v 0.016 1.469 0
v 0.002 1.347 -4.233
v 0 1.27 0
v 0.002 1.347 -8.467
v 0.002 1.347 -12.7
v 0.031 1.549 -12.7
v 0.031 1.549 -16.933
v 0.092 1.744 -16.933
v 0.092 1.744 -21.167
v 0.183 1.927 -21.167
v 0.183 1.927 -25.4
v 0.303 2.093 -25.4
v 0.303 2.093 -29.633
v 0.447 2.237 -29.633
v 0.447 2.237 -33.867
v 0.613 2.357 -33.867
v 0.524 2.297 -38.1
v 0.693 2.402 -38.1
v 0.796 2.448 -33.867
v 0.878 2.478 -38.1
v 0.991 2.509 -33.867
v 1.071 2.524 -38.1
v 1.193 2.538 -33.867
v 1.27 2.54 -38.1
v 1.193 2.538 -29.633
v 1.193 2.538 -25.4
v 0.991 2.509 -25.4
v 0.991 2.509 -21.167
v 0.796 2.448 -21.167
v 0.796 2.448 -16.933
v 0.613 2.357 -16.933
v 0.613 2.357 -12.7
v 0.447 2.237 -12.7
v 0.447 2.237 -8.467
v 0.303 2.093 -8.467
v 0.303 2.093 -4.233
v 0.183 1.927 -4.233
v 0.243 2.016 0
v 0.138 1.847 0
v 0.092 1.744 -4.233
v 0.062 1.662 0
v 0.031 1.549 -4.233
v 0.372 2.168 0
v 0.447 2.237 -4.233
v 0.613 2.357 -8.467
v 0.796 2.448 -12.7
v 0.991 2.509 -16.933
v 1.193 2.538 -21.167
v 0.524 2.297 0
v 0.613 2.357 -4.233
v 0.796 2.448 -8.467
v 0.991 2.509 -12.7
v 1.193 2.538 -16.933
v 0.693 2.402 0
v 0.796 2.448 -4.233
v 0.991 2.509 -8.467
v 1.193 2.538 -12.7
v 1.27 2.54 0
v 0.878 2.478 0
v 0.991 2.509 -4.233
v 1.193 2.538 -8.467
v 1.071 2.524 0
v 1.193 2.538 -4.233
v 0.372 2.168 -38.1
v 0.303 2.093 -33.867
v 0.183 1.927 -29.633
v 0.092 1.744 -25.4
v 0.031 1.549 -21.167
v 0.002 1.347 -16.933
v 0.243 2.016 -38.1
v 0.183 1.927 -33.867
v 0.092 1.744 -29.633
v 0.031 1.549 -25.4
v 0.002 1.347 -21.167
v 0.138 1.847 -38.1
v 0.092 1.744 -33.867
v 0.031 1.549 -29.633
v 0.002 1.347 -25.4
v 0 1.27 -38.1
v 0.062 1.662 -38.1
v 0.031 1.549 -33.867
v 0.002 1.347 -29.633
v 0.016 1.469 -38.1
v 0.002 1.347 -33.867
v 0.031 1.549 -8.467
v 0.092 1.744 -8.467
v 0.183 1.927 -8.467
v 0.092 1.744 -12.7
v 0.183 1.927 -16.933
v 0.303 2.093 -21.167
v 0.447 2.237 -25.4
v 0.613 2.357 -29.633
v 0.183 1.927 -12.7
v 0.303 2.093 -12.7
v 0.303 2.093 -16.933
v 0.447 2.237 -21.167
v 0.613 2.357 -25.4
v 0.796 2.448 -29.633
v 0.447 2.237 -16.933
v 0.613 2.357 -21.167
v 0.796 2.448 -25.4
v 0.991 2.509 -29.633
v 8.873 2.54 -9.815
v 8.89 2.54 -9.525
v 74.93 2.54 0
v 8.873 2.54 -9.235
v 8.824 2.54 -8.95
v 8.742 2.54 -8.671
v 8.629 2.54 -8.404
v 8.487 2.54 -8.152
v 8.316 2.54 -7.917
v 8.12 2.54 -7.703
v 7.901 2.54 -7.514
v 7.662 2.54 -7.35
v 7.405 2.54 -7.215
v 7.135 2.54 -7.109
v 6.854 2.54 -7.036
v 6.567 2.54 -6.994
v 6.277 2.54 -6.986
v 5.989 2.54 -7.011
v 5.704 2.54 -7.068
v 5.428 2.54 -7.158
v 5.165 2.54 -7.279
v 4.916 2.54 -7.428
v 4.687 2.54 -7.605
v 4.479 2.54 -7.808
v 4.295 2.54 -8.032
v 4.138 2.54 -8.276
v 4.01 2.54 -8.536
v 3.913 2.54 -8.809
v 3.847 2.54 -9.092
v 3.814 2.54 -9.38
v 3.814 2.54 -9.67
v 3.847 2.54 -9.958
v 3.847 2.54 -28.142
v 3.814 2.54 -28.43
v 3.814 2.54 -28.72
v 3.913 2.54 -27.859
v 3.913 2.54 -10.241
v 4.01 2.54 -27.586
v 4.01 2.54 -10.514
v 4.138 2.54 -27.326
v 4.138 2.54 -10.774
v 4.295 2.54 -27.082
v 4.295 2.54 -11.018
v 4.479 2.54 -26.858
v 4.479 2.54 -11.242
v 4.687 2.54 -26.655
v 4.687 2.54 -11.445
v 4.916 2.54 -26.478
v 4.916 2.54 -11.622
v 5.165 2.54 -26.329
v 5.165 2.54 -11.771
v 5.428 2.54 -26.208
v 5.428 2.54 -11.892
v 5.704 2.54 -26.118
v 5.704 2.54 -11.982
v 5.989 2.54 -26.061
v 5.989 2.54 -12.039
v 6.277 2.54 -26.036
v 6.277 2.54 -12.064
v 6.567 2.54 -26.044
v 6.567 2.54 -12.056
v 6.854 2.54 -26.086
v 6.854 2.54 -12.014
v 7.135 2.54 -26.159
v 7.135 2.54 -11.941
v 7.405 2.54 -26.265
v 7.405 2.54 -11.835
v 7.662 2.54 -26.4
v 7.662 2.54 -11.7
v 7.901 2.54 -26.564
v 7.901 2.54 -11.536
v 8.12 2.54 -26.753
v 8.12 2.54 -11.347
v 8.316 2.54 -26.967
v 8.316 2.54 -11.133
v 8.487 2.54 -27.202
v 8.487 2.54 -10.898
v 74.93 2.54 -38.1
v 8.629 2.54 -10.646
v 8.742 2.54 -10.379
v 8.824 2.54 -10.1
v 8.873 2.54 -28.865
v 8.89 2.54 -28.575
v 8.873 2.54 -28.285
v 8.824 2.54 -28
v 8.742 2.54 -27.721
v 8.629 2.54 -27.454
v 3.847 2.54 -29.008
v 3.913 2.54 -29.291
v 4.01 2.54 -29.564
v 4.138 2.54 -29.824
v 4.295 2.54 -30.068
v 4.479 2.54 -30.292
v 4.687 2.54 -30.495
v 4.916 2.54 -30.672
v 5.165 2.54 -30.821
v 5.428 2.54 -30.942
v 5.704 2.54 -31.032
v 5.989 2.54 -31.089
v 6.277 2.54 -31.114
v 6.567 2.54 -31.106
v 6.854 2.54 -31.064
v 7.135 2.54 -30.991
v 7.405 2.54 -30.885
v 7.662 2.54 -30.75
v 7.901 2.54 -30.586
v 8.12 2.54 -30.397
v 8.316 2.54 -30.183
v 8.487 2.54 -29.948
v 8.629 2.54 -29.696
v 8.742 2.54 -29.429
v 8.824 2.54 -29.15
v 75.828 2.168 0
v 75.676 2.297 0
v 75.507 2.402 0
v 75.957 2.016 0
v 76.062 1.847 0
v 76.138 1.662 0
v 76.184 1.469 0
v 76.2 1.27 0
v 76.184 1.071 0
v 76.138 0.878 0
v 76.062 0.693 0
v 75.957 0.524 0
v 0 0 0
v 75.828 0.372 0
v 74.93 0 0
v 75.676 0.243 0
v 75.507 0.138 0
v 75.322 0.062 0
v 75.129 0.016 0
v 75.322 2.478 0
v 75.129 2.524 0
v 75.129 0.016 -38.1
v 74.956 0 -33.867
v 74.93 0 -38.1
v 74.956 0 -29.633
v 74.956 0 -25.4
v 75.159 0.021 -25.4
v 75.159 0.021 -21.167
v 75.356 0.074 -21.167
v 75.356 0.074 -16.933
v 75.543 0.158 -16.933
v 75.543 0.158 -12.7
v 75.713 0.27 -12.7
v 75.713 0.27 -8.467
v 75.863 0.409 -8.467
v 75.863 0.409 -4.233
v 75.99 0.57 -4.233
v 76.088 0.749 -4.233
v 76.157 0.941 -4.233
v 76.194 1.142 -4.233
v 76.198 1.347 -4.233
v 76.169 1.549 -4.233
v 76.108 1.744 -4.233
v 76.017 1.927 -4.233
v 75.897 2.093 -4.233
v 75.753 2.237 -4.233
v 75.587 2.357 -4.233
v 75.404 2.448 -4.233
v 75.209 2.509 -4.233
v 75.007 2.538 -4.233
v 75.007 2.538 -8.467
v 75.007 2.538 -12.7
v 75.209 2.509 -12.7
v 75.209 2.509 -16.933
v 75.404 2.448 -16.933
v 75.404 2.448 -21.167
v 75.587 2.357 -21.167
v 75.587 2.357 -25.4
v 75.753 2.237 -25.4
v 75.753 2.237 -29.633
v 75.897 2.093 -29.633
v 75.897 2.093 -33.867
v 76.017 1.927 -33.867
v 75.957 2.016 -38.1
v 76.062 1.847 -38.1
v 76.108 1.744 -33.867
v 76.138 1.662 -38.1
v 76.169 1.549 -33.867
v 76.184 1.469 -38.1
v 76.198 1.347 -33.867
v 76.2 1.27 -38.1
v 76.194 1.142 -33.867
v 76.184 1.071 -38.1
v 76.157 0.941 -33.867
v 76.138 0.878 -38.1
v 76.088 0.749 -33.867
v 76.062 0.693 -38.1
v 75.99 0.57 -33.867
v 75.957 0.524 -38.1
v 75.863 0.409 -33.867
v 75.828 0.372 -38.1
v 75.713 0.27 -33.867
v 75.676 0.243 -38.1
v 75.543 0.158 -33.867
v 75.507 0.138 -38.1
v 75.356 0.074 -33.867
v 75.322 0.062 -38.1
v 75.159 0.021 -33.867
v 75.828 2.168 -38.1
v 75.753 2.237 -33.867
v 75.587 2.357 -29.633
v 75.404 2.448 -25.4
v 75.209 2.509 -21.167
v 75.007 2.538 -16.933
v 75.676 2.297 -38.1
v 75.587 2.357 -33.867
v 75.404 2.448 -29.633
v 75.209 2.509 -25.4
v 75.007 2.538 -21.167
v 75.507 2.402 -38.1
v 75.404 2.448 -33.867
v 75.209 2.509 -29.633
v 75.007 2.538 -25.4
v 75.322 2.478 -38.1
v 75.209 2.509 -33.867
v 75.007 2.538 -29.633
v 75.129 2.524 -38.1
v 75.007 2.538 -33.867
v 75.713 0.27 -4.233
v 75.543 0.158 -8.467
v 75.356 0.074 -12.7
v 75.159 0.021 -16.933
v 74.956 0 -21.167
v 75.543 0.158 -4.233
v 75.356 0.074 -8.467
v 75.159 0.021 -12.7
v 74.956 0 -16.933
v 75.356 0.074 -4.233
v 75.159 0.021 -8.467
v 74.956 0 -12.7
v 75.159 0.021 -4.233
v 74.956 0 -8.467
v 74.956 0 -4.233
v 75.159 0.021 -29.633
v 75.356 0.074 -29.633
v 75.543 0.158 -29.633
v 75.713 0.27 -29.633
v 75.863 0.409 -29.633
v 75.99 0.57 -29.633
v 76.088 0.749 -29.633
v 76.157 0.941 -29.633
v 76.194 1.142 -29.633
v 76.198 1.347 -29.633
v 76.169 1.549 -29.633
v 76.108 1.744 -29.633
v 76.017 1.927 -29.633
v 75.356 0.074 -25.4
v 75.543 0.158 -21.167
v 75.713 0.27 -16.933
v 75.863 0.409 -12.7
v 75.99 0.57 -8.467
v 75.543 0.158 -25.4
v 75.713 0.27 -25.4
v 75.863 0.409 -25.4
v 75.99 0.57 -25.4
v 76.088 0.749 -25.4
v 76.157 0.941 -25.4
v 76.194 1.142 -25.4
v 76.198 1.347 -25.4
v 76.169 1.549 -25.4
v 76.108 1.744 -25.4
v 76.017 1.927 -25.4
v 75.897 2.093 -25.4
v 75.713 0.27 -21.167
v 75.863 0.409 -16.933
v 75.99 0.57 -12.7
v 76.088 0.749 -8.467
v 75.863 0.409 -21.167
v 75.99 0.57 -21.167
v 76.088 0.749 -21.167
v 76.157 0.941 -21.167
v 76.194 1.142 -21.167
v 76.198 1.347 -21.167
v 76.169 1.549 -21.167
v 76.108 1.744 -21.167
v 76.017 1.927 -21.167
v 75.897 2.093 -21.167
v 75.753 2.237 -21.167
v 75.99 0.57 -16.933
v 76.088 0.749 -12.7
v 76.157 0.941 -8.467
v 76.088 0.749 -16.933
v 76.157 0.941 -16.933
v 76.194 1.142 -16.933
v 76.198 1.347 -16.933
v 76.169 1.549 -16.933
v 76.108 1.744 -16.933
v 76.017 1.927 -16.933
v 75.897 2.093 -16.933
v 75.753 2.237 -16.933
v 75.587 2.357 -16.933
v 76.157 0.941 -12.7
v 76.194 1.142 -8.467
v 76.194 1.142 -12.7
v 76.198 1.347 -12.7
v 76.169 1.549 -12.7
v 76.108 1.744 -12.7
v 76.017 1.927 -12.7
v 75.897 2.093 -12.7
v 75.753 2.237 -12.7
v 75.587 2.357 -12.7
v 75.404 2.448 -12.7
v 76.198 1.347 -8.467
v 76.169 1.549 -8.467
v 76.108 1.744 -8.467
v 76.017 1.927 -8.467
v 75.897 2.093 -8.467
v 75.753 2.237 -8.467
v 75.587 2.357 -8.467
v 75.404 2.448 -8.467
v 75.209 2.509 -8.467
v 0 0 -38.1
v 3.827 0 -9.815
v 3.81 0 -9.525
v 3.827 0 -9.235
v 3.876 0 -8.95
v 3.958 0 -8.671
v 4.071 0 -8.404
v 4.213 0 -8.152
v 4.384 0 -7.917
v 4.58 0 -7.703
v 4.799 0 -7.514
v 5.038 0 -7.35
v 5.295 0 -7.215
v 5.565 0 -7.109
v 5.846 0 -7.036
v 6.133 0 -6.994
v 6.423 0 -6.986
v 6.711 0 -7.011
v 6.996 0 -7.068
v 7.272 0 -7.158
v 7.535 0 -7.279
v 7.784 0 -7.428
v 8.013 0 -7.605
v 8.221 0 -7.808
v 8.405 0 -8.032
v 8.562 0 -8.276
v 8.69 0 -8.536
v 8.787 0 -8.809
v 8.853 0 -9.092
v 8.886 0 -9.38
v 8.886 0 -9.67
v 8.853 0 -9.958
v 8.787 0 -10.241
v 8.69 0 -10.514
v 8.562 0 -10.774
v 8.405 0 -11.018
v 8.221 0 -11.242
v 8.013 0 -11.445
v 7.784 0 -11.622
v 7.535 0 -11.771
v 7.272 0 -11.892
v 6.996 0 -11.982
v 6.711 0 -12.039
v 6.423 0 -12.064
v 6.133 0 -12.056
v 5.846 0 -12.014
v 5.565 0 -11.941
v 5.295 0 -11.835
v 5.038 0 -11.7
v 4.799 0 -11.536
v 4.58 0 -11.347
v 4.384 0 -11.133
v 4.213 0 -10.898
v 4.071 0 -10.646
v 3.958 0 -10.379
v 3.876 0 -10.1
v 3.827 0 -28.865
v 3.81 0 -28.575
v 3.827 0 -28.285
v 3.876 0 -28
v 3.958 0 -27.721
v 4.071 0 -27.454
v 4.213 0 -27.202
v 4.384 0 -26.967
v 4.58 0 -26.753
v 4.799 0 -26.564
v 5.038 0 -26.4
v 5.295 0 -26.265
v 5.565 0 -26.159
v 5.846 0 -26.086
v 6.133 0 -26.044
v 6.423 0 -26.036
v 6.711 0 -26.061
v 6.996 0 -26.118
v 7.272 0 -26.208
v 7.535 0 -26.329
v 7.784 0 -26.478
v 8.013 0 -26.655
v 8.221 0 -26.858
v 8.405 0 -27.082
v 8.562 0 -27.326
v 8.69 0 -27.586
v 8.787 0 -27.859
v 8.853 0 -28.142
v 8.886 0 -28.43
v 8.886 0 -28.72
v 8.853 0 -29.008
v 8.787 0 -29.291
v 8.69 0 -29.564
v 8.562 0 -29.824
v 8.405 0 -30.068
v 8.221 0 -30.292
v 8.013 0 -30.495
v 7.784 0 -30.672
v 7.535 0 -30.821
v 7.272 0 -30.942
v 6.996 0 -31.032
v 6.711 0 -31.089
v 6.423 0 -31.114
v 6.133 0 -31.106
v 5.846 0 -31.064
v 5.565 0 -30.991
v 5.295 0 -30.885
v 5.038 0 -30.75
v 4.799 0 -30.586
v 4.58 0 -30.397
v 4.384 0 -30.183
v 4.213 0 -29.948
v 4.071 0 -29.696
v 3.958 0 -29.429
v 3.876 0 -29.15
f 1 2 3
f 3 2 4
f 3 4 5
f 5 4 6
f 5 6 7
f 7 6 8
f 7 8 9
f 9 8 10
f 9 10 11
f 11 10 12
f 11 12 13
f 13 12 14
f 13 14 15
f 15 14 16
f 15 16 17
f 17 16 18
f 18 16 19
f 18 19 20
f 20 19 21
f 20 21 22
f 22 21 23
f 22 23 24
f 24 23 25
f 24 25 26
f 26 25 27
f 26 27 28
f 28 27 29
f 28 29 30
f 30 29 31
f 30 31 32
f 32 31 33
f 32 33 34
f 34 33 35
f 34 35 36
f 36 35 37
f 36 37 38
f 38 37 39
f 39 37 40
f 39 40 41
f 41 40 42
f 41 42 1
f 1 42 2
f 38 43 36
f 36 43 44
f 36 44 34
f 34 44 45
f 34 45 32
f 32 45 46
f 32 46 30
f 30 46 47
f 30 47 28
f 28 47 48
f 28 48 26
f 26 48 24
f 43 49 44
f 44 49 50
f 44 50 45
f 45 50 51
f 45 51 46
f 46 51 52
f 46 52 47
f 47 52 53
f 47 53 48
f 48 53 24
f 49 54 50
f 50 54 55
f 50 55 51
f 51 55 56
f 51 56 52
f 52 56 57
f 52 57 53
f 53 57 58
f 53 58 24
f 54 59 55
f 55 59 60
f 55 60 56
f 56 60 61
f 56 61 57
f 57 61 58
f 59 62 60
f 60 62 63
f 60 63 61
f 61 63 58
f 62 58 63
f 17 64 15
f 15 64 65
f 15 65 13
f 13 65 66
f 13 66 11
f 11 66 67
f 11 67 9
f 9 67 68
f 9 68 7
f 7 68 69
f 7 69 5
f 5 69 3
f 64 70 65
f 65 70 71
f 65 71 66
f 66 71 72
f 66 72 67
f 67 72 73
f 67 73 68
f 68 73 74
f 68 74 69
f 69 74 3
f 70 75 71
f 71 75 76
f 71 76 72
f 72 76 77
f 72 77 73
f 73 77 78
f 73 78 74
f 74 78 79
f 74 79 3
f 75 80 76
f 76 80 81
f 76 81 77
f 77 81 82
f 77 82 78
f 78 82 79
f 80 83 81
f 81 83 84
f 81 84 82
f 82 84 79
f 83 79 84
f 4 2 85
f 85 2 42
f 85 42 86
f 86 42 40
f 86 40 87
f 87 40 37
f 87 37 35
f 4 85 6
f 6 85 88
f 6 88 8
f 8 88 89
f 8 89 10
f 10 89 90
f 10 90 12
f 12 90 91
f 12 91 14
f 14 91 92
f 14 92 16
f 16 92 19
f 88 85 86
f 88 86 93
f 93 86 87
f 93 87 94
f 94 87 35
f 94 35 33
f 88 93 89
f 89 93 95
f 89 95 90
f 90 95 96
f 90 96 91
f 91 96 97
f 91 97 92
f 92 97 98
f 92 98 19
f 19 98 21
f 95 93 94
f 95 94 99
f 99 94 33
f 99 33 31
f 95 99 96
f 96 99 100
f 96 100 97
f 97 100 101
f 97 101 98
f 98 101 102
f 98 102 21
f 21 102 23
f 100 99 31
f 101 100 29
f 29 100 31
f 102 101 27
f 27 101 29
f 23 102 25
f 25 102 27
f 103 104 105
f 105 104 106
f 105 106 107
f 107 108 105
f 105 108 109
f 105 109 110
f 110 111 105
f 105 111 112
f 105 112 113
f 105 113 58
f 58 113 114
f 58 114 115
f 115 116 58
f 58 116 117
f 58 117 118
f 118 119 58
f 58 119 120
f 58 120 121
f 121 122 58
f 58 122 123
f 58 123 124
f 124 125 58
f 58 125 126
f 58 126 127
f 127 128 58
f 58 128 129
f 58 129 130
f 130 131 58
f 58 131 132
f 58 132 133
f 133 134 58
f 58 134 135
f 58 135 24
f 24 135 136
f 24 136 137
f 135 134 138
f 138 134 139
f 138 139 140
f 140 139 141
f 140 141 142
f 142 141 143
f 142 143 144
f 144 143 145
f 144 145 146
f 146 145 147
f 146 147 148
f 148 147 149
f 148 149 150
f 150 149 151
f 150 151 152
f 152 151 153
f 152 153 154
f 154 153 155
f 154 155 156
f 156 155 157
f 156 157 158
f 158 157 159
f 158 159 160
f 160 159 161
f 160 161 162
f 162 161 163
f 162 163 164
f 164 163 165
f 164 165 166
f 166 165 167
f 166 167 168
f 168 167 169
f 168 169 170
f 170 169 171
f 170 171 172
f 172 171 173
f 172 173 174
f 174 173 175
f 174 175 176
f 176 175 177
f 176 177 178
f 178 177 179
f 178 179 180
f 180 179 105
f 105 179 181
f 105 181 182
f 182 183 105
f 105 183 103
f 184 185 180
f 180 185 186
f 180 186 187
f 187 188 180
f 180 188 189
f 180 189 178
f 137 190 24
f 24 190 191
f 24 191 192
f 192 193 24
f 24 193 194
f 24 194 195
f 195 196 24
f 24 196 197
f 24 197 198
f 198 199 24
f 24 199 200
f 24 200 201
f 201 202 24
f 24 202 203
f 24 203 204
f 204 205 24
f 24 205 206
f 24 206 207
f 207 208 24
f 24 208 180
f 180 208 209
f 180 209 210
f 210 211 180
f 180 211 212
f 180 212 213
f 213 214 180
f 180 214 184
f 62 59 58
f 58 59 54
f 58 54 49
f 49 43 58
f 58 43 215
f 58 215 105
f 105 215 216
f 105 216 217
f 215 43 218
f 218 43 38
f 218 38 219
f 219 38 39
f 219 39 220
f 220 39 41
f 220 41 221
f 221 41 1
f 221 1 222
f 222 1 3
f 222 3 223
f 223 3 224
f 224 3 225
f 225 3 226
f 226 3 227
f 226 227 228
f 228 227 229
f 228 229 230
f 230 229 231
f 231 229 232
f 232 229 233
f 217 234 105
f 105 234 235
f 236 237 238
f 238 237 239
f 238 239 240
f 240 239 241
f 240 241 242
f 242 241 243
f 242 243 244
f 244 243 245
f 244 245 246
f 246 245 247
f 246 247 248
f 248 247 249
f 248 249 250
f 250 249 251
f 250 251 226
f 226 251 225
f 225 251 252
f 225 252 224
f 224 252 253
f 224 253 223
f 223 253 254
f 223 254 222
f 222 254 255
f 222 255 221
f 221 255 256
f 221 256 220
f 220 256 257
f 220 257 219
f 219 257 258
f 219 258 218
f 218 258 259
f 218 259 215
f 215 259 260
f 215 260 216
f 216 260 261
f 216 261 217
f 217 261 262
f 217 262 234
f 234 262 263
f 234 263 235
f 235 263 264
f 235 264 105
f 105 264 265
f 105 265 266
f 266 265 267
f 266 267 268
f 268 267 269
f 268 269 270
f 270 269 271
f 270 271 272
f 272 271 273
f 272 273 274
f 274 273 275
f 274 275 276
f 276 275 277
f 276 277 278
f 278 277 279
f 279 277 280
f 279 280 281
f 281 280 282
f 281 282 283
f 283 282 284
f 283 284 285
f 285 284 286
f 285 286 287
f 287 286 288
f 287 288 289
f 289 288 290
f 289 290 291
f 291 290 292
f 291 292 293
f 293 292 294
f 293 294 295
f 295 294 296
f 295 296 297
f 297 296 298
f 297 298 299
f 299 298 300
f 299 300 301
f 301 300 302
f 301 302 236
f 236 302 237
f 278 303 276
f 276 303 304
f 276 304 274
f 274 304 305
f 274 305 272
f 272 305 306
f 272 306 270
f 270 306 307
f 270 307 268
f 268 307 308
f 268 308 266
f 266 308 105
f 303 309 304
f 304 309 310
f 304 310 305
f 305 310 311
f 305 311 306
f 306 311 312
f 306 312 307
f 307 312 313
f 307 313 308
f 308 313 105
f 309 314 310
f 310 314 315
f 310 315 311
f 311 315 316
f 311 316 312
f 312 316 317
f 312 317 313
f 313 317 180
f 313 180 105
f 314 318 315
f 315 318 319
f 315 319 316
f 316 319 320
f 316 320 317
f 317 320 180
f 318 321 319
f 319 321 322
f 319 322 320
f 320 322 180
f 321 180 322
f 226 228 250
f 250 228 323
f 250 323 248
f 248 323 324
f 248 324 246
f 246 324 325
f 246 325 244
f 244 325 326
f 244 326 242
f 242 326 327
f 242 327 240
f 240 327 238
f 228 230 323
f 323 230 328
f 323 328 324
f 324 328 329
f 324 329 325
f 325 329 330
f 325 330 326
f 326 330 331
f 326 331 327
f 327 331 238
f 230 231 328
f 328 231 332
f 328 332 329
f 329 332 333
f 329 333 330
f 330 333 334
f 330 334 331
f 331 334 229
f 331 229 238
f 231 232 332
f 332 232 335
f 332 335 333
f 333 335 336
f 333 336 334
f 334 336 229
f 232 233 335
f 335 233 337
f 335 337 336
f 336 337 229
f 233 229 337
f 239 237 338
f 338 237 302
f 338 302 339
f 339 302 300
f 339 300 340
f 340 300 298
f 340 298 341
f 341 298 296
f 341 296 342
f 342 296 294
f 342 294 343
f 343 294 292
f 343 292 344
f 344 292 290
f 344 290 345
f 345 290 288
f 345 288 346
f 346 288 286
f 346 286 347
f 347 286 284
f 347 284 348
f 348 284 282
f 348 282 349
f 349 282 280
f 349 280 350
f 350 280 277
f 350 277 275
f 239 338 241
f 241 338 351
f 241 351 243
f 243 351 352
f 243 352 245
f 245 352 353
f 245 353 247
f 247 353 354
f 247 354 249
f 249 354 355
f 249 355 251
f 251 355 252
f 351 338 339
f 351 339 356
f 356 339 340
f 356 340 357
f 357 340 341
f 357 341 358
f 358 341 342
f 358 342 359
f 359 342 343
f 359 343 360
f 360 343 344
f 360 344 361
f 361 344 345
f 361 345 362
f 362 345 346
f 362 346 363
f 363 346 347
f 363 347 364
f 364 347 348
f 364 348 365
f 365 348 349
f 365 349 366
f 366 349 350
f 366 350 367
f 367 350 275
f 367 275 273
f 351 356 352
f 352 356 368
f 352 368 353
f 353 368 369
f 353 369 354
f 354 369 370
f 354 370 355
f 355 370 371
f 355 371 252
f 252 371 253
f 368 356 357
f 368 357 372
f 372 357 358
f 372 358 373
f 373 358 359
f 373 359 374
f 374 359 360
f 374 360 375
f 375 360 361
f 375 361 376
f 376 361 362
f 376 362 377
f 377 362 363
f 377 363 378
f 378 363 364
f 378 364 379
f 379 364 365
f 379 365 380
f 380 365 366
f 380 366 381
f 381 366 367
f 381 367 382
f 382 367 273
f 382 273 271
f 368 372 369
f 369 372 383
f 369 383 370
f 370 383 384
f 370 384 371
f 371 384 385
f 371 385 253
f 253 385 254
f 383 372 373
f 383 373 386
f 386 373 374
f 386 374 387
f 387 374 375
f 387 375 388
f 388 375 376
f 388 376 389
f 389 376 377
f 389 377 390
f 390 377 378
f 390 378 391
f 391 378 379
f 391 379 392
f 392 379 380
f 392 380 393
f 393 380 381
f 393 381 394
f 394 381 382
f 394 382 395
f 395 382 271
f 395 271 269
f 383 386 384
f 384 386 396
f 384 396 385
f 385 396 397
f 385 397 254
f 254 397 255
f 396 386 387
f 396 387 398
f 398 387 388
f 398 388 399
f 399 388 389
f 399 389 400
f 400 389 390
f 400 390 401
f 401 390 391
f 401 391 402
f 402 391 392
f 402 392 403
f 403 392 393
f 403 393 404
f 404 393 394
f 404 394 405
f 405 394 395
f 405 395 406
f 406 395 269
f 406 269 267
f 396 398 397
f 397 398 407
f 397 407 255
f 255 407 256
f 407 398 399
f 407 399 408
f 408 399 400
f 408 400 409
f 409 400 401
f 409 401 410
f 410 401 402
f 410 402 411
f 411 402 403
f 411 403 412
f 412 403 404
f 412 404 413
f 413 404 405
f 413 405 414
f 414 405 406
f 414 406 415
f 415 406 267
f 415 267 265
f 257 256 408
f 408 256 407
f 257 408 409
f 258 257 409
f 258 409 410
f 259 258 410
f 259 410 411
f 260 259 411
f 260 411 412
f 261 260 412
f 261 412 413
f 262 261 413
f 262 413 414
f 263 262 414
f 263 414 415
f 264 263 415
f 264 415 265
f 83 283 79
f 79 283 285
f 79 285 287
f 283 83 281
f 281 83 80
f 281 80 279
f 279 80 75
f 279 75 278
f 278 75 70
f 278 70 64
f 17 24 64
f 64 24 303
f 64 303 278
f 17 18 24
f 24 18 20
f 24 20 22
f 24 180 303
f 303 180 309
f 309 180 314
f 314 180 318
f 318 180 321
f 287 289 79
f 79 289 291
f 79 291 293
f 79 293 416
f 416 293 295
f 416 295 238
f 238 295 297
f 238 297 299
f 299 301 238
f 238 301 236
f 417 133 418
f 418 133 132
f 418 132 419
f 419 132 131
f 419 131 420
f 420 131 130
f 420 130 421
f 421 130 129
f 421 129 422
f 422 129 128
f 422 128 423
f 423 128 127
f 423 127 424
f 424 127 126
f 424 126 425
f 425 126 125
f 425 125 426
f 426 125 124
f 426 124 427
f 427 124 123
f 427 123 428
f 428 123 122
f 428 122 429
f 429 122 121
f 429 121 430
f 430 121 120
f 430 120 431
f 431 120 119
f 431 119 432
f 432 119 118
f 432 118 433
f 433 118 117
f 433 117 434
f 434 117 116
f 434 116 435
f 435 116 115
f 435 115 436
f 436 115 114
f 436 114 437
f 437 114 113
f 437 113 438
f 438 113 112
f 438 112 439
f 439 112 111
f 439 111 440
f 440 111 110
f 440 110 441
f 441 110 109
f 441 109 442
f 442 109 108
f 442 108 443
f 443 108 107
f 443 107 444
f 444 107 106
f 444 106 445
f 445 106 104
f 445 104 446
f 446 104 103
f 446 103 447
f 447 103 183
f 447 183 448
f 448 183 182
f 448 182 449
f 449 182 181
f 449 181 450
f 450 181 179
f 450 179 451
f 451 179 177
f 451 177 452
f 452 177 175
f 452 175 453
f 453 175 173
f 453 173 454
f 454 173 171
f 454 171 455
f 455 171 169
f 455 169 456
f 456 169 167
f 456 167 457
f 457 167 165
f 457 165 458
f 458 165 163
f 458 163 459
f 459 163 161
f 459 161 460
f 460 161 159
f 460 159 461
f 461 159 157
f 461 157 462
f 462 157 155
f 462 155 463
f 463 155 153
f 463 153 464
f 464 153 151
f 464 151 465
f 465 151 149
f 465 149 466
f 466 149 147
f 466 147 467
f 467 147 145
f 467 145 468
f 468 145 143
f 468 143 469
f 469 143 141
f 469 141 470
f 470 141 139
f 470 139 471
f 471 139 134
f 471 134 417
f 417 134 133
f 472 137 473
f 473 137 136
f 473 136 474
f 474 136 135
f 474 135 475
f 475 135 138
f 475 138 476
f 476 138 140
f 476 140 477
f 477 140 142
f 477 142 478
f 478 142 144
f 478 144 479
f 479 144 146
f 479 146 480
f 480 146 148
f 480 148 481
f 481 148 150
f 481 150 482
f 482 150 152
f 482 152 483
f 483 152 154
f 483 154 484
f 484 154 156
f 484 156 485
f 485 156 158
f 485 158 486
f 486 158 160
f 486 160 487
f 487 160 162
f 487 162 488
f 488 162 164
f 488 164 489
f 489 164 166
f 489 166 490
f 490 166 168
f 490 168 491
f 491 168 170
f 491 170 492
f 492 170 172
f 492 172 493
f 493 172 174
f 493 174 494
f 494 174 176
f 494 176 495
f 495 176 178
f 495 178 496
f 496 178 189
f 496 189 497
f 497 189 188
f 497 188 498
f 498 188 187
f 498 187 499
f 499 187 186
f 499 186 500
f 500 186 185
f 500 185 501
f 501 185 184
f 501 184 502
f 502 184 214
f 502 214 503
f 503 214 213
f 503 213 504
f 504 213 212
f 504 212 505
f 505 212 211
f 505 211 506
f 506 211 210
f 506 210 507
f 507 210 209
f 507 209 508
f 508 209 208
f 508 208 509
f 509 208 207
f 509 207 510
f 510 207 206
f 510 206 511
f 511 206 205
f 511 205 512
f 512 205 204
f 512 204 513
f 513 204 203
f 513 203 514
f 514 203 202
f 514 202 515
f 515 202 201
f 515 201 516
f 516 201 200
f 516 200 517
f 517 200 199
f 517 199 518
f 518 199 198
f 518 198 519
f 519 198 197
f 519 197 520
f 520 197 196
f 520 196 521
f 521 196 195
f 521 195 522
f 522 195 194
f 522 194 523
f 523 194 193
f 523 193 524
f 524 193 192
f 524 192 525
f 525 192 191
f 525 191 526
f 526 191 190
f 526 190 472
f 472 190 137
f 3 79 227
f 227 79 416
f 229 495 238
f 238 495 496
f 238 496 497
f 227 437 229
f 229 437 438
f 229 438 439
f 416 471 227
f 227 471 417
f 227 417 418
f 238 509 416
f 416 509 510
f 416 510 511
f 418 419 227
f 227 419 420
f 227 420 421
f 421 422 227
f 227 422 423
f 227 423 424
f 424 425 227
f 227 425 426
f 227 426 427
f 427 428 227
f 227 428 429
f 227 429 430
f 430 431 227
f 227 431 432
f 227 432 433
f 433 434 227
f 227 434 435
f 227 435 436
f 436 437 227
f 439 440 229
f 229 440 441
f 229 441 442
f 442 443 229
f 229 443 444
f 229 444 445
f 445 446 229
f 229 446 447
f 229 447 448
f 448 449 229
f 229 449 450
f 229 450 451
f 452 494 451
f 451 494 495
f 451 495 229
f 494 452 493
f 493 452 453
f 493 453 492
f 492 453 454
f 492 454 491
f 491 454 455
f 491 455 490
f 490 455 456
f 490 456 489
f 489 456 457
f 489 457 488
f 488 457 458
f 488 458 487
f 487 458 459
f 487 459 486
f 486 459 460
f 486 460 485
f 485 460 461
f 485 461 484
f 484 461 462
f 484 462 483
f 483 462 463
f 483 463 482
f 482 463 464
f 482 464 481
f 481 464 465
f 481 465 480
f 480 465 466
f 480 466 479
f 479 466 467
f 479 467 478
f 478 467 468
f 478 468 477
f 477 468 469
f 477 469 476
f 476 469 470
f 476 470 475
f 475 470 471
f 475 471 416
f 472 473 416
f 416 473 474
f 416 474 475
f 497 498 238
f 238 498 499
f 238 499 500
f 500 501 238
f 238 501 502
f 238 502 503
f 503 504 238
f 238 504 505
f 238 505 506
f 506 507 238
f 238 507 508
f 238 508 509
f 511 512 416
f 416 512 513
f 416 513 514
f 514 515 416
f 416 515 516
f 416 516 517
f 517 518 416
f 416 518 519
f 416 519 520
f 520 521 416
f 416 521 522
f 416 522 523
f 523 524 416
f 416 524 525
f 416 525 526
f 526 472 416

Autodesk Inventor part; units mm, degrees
ref_plane "YZ Plane" through (0, 0, 0) normal (1, 0, 0) x (0, 1, 0)
ref_plane "XZ Plane" through (0, 0, 0) normal (0, 1, 0) x (-1, 0, 0)
ref_plane "XY Plane" through (0, 0, 0) normal (0, 0, 1) x (1, 0, 0)
sketch "Sketch1" plane through (0, 0, 0) normal (0, 1, 0) x (-1, 0, 0)
  line L0 (0, 0) -> (-76.2, 0)
  line L1 (-76.2, 0) -> (-76.2, -38.1)
  line L2 (-76.2, -38.1) -> (0, -38.1)
  line L3 (0, -38.1) -> (0, 0)
  dimension "d0" = 76.2
  dimension "d1" = 38.1
extrude "Extrusion1" add sketch "Sketch1" along normal blind 2.54
sketch "Sketch2" plane through (0, 2.54, 0) normal (0, 1, 0) x (1, 0, 0)
  line L0 (0, 0) -> (6.35, 0)
  line L1 (0, 0) -> (76.2, 0) projected
  line L2 (6.35, 0) -> (6.35, 38.1)
  line L3 (76.2, 38.1) -> (0, 38.1) projected
  line L4 (6.35, 0) -> (6.35, 9.525)
  line L5 (6.35, 38.1) -> (6.35, 28.575)
  dimension "d4" = 6.35
  dimension "d5" = 9.525
  dimension "d6" = 9.525
hole "Hole1" at (6.35, 2.54, -9.525) at (6.35, 2.54, -28.575) direction (0, -1, 0) diameter 5.08 end through all
fillet "Fillet1" radius 1.27 2 edges at (76.2, 2.54, -19.05) (76.2, 0, -19.05)
fillet "Fillet2" radius 1.27 1 edges at (0, 2.54, -19.05)
properties part number "Cover"
